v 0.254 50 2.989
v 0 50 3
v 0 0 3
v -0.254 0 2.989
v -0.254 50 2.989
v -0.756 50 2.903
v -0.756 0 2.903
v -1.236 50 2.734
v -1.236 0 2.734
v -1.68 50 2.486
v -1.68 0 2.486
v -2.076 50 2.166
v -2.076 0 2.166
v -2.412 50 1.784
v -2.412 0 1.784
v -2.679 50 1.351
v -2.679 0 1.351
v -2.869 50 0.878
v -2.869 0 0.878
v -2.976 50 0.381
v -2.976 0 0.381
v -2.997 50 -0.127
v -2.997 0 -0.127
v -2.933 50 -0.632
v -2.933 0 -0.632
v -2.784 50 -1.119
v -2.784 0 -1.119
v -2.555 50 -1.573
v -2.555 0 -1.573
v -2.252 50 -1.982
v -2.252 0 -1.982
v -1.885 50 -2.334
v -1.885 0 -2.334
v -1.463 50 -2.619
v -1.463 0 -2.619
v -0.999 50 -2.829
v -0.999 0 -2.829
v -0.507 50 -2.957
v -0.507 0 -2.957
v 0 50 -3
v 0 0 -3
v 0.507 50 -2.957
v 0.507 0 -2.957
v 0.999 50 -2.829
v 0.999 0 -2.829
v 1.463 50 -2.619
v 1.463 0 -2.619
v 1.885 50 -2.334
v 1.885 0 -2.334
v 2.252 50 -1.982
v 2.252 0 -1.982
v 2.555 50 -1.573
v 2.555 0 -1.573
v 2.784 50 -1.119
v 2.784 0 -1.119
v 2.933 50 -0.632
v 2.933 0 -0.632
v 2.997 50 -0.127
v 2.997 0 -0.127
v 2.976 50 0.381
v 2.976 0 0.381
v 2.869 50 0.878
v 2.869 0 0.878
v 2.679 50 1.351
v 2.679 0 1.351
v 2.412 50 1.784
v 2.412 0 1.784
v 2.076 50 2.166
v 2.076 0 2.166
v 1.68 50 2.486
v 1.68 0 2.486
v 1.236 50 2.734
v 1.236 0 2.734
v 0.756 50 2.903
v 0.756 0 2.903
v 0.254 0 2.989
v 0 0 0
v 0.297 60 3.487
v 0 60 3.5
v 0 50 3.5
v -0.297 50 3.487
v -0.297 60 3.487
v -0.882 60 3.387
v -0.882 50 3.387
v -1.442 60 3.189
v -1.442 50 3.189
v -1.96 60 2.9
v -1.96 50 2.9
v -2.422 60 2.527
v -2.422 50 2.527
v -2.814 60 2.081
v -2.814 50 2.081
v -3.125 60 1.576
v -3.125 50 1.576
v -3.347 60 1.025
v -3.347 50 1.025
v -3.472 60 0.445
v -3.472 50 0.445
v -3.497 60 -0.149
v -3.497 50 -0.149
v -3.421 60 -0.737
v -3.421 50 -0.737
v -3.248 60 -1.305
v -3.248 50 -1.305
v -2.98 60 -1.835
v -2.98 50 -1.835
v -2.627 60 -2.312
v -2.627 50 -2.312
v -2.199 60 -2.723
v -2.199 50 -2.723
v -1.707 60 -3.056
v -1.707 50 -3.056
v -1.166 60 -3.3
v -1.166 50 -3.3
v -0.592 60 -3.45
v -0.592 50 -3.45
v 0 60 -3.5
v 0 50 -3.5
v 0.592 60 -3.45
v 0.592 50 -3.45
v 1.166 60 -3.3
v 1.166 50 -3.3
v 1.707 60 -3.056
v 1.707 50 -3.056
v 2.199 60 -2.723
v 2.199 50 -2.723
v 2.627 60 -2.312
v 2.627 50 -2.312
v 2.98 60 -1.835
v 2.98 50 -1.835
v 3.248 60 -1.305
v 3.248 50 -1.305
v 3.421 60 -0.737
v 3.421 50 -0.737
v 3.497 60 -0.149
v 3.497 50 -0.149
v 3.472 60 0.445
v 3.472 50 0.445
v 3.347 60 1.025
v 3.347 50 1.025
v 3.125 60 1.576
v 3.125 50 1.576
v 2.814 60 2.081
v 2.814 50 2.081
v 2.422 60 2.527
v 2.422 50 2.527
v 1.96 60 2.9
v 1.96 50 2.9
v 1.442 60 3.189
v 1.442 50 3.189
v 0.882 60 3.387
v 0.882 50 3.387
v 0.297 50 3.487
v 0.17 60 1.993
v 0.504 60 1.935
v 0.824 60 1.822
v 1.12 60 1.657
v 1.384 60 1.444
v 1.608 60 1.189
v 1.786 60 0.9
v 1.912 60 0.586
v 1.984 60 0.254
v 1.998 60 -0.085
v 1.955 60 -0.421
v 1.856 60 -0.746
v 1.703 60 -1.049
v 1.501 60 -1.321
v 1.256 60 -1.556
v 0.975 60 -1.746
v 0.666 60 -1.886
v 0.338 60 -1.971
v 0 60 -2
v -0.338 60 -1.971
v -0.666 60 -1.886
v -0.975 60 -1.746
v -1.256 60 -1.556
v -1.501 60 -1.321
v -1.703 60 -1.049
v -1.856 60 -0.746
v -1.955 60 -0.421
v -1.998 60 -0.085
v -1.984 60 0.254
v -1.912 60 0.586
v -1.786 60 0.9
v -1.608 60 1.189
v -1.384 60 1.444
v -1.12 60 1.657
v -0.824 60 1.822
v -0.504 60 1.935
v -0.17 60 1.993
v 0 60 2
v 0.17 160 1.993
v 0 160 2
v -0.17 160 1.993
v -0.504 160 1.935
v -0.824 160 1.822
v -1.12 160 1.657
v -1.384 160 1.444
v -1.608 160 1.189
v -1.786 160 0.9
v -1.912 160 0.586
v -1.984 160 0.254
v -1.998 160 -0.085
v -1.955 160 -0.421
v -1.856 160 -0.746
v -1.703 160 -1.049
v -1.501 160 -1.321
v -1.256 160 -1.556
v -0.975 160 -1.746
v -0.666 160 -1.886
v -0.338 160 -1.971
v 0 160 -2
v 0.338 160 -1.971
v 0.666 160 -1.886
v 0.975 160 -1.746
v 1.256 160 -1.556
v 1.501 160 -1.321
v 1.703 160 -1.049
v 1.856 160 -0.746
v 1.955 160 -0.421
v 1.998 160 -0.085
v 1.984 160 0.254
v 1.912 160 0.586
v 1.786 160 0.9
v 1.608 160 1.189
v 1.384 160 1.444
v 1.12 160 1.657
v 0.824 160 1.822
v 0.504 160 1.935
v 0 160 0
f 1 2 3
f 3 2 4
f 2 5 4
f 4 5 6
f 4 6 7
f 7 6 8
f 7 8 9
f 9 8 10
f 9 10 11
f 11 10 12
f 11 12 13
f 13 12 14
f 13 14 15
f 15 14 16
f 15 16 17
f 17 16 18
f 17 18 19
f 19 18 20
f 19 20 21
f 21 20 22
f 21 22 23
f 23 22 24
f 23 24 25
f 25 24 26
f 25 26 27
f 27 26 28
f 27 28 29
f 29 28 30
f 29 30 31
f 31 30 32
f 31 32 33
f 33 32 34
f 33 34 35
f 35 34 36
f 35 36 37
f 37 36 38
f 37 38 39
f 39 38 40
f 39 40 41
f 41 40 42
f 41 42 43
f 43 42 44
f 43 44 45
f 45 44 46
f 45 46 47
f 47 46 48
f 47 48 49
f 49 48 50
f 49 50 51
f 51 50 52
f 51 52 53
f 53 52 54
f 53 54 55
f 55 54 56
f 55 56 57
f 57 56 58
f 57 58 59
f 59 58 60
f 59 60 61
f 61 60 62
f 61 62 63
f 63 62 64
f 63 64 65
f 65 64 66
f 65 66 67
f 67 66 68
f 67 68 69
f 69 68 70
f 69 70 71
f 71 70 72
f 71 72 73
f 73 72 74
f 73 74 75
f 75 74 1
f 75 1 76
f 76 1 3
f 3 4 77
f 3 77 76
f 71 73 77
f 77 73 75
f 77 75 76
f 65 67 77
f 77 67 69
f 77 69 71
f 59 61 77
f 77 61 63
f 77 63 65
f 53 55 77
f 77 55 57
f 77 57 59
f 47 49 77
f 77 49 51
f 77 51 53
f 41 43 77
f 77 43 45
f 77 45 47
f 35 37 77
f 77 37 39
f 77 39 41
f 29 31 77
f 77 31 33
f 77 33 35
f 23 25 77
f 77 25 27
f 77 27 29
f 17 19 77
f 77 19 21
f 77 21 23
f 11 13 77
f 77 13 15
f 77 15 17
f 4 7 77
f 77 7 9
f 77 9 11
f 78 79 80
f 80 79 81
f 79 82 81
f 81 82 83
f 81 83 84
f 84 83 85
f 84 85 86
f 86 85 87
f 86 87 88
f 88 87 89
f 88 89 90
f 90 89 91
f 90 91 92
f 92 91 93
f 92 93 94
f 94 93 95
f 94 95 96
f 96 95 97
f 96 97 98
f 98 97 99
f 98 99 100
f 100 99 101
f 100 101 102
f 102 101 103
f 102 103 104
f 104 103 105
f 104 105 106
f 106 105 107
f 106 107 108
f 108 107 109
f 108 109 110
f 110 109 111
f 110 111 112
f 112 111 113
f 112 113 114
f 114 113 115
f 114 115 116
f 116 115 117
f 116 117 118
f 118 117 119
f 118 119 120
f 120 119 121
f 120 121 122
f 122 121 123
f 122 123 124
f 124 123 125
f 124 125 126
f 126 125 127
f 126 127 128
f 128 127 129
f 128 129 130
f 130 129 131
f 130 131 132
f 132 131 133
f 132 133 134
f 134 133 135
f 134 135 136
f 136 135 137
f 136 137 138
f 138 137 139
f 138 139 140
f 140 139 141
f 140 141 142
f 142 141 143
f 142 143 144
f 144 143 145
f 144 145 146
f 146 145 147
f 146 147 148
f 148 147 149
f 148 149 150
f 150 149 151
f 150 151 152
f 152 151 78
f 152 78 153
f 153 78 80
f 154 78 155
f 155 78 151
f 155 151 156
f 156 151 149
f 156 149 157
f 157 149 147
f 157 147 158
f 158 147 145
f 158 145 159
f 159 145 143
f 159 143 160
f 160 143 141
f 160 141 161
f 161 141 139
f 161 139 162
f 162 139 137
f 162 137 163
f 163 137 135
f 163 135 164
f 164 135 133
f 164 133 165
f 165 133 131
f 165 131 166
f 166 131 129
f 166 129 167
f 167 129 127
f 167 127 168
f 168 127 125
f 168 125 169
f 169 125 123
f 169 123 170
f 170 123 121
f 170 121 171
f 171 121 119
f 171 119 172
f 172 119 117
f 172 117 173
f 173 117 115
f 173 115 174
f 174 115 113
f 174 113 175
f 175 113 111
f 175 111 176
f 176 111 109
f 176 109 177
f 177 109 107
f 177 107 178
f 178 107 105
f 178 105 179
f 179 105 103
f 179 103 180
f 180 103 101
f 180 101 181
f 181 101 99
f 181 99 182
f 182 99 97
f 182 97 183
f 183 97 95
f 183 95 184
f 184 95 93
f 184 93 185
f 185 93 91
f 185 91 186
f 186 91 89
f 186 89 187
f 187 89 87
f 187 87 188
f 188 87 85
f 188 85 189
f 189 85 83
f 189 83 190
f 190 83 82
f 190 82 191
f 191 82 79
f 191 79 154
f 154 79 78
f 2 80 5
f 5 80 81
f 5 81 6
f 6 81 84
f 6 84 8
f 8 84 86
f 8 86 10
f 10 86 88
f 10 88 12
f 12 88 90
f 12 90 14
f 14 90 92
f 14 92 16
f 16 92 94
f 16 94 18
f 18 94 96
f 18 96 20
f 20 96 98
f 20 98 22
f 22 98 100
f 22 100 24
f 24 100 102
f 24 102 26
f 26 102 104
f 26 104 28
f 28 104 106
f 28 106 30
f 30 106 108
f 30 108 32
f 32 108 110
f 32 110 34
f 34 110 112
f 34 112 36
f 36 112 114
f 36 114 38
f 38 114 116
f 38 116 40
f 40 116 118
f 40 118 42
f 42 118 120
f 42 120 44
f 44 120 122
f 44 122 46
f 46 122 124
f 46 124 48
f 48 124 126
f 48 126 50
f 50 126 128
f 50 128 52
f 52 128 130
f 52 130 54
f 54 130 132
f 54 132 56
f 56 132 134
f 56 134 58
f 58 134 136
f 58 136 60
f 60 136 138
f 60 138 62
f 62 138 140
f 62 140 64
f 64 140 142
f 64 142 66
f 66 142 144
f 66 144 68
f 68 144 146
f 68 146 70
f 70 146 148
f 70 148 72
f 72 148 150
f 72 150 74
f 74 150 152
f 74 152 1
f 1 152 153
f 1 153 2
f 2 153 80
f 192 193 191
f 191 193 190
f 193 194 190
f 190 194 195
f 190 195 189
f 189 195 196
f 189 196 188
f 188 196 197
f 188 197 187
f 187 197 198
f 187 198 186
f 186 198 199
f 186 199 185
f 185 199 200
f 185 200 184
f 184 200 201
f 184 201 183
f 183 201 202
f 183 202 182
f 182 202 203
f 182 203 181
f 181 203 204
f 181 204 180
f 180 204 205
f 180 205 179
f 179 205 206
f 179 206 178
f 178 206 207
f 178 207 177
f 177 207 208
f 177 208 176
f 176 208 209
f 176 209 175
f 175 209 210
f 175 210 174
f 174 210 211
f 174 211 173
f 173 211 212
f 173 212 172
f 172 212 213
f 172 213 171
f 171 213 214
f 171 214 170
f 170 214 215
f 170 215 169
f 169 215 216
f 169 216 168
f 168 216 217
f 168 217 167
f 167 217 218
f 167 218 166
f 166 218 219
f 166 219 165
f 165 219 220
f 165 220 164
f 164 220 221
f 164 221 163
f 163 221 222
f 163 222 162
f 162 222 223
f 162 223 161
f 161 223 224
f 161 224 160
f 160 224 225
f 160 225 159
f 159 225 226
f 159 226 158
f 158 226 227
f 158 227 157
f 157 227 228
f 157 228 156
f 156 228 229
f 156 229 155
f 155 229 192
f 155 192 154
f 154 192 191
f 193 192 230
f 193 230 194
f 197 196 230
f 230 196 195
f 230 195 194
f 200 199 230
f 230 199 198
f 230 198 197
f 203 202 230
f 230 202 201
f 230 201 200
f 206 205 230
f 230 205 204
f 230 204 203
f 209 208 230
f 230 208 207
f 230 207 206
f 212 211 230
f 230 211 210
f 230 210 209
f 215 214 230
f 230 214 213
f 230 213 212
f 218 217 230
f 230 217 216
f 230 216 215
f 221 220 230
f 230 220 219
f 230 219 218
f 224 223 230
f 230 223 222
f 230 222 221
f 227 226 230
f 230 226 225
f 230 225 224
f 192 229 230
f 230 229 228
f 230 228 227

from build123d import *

# Parameters (mm, degrees)
SKETCH1_R        = 3
STEEL_TUBE_DEPTH = 50
HEATSHRINK_START = 50
SKETCH2_R        = 3.5
HEATSHRINK_DEPTH = 10
CABLE_START      = 60
SKETCH3_R        = 2
CABLE_DEPTH      = 100


with BuildPart() as part:
    # Sketch1 → Steel_Tube (new body)
    with BuildSketch(Plane(origin=(0, 0, 0), x_dir=(1, 0, 0), z_dir=(0, 1, 0))):
        with Locations(Location((0, 0, 0), (0, 0, 270))):
            Circle(SKETCH1_R)
    extrude(amount=STEEL_TUBE_DEPTH)

    # Sketch2 → Heatshrink (add)
    with BuildSketch(Plane(origin=(0, 0, 0), x_dir=(1, 0, 0), z_dir=(0, 1, 0)).offset(HEATSHRINK_START)):
        with Locations(Location((0, 0, 0), (0, 0, 270))):
            Circle(SKETCH2_R)
    extrude(amount=HEATSHRINK_DEPTH)

    # Sketch3 → Cable (add)
    with BuildSketch(Plane(origin=(0, 0, 0), x_dir=(1, 0, 0), z_dir=(0, 1, 0)).offset(CABLE_START)):
        with Locations(Location((0, 0, 0), (0, 0, 270))):
            Circle(SKETCH3_R)
    extrude(amount=CABLE_DEPTH)


solid = part.part
